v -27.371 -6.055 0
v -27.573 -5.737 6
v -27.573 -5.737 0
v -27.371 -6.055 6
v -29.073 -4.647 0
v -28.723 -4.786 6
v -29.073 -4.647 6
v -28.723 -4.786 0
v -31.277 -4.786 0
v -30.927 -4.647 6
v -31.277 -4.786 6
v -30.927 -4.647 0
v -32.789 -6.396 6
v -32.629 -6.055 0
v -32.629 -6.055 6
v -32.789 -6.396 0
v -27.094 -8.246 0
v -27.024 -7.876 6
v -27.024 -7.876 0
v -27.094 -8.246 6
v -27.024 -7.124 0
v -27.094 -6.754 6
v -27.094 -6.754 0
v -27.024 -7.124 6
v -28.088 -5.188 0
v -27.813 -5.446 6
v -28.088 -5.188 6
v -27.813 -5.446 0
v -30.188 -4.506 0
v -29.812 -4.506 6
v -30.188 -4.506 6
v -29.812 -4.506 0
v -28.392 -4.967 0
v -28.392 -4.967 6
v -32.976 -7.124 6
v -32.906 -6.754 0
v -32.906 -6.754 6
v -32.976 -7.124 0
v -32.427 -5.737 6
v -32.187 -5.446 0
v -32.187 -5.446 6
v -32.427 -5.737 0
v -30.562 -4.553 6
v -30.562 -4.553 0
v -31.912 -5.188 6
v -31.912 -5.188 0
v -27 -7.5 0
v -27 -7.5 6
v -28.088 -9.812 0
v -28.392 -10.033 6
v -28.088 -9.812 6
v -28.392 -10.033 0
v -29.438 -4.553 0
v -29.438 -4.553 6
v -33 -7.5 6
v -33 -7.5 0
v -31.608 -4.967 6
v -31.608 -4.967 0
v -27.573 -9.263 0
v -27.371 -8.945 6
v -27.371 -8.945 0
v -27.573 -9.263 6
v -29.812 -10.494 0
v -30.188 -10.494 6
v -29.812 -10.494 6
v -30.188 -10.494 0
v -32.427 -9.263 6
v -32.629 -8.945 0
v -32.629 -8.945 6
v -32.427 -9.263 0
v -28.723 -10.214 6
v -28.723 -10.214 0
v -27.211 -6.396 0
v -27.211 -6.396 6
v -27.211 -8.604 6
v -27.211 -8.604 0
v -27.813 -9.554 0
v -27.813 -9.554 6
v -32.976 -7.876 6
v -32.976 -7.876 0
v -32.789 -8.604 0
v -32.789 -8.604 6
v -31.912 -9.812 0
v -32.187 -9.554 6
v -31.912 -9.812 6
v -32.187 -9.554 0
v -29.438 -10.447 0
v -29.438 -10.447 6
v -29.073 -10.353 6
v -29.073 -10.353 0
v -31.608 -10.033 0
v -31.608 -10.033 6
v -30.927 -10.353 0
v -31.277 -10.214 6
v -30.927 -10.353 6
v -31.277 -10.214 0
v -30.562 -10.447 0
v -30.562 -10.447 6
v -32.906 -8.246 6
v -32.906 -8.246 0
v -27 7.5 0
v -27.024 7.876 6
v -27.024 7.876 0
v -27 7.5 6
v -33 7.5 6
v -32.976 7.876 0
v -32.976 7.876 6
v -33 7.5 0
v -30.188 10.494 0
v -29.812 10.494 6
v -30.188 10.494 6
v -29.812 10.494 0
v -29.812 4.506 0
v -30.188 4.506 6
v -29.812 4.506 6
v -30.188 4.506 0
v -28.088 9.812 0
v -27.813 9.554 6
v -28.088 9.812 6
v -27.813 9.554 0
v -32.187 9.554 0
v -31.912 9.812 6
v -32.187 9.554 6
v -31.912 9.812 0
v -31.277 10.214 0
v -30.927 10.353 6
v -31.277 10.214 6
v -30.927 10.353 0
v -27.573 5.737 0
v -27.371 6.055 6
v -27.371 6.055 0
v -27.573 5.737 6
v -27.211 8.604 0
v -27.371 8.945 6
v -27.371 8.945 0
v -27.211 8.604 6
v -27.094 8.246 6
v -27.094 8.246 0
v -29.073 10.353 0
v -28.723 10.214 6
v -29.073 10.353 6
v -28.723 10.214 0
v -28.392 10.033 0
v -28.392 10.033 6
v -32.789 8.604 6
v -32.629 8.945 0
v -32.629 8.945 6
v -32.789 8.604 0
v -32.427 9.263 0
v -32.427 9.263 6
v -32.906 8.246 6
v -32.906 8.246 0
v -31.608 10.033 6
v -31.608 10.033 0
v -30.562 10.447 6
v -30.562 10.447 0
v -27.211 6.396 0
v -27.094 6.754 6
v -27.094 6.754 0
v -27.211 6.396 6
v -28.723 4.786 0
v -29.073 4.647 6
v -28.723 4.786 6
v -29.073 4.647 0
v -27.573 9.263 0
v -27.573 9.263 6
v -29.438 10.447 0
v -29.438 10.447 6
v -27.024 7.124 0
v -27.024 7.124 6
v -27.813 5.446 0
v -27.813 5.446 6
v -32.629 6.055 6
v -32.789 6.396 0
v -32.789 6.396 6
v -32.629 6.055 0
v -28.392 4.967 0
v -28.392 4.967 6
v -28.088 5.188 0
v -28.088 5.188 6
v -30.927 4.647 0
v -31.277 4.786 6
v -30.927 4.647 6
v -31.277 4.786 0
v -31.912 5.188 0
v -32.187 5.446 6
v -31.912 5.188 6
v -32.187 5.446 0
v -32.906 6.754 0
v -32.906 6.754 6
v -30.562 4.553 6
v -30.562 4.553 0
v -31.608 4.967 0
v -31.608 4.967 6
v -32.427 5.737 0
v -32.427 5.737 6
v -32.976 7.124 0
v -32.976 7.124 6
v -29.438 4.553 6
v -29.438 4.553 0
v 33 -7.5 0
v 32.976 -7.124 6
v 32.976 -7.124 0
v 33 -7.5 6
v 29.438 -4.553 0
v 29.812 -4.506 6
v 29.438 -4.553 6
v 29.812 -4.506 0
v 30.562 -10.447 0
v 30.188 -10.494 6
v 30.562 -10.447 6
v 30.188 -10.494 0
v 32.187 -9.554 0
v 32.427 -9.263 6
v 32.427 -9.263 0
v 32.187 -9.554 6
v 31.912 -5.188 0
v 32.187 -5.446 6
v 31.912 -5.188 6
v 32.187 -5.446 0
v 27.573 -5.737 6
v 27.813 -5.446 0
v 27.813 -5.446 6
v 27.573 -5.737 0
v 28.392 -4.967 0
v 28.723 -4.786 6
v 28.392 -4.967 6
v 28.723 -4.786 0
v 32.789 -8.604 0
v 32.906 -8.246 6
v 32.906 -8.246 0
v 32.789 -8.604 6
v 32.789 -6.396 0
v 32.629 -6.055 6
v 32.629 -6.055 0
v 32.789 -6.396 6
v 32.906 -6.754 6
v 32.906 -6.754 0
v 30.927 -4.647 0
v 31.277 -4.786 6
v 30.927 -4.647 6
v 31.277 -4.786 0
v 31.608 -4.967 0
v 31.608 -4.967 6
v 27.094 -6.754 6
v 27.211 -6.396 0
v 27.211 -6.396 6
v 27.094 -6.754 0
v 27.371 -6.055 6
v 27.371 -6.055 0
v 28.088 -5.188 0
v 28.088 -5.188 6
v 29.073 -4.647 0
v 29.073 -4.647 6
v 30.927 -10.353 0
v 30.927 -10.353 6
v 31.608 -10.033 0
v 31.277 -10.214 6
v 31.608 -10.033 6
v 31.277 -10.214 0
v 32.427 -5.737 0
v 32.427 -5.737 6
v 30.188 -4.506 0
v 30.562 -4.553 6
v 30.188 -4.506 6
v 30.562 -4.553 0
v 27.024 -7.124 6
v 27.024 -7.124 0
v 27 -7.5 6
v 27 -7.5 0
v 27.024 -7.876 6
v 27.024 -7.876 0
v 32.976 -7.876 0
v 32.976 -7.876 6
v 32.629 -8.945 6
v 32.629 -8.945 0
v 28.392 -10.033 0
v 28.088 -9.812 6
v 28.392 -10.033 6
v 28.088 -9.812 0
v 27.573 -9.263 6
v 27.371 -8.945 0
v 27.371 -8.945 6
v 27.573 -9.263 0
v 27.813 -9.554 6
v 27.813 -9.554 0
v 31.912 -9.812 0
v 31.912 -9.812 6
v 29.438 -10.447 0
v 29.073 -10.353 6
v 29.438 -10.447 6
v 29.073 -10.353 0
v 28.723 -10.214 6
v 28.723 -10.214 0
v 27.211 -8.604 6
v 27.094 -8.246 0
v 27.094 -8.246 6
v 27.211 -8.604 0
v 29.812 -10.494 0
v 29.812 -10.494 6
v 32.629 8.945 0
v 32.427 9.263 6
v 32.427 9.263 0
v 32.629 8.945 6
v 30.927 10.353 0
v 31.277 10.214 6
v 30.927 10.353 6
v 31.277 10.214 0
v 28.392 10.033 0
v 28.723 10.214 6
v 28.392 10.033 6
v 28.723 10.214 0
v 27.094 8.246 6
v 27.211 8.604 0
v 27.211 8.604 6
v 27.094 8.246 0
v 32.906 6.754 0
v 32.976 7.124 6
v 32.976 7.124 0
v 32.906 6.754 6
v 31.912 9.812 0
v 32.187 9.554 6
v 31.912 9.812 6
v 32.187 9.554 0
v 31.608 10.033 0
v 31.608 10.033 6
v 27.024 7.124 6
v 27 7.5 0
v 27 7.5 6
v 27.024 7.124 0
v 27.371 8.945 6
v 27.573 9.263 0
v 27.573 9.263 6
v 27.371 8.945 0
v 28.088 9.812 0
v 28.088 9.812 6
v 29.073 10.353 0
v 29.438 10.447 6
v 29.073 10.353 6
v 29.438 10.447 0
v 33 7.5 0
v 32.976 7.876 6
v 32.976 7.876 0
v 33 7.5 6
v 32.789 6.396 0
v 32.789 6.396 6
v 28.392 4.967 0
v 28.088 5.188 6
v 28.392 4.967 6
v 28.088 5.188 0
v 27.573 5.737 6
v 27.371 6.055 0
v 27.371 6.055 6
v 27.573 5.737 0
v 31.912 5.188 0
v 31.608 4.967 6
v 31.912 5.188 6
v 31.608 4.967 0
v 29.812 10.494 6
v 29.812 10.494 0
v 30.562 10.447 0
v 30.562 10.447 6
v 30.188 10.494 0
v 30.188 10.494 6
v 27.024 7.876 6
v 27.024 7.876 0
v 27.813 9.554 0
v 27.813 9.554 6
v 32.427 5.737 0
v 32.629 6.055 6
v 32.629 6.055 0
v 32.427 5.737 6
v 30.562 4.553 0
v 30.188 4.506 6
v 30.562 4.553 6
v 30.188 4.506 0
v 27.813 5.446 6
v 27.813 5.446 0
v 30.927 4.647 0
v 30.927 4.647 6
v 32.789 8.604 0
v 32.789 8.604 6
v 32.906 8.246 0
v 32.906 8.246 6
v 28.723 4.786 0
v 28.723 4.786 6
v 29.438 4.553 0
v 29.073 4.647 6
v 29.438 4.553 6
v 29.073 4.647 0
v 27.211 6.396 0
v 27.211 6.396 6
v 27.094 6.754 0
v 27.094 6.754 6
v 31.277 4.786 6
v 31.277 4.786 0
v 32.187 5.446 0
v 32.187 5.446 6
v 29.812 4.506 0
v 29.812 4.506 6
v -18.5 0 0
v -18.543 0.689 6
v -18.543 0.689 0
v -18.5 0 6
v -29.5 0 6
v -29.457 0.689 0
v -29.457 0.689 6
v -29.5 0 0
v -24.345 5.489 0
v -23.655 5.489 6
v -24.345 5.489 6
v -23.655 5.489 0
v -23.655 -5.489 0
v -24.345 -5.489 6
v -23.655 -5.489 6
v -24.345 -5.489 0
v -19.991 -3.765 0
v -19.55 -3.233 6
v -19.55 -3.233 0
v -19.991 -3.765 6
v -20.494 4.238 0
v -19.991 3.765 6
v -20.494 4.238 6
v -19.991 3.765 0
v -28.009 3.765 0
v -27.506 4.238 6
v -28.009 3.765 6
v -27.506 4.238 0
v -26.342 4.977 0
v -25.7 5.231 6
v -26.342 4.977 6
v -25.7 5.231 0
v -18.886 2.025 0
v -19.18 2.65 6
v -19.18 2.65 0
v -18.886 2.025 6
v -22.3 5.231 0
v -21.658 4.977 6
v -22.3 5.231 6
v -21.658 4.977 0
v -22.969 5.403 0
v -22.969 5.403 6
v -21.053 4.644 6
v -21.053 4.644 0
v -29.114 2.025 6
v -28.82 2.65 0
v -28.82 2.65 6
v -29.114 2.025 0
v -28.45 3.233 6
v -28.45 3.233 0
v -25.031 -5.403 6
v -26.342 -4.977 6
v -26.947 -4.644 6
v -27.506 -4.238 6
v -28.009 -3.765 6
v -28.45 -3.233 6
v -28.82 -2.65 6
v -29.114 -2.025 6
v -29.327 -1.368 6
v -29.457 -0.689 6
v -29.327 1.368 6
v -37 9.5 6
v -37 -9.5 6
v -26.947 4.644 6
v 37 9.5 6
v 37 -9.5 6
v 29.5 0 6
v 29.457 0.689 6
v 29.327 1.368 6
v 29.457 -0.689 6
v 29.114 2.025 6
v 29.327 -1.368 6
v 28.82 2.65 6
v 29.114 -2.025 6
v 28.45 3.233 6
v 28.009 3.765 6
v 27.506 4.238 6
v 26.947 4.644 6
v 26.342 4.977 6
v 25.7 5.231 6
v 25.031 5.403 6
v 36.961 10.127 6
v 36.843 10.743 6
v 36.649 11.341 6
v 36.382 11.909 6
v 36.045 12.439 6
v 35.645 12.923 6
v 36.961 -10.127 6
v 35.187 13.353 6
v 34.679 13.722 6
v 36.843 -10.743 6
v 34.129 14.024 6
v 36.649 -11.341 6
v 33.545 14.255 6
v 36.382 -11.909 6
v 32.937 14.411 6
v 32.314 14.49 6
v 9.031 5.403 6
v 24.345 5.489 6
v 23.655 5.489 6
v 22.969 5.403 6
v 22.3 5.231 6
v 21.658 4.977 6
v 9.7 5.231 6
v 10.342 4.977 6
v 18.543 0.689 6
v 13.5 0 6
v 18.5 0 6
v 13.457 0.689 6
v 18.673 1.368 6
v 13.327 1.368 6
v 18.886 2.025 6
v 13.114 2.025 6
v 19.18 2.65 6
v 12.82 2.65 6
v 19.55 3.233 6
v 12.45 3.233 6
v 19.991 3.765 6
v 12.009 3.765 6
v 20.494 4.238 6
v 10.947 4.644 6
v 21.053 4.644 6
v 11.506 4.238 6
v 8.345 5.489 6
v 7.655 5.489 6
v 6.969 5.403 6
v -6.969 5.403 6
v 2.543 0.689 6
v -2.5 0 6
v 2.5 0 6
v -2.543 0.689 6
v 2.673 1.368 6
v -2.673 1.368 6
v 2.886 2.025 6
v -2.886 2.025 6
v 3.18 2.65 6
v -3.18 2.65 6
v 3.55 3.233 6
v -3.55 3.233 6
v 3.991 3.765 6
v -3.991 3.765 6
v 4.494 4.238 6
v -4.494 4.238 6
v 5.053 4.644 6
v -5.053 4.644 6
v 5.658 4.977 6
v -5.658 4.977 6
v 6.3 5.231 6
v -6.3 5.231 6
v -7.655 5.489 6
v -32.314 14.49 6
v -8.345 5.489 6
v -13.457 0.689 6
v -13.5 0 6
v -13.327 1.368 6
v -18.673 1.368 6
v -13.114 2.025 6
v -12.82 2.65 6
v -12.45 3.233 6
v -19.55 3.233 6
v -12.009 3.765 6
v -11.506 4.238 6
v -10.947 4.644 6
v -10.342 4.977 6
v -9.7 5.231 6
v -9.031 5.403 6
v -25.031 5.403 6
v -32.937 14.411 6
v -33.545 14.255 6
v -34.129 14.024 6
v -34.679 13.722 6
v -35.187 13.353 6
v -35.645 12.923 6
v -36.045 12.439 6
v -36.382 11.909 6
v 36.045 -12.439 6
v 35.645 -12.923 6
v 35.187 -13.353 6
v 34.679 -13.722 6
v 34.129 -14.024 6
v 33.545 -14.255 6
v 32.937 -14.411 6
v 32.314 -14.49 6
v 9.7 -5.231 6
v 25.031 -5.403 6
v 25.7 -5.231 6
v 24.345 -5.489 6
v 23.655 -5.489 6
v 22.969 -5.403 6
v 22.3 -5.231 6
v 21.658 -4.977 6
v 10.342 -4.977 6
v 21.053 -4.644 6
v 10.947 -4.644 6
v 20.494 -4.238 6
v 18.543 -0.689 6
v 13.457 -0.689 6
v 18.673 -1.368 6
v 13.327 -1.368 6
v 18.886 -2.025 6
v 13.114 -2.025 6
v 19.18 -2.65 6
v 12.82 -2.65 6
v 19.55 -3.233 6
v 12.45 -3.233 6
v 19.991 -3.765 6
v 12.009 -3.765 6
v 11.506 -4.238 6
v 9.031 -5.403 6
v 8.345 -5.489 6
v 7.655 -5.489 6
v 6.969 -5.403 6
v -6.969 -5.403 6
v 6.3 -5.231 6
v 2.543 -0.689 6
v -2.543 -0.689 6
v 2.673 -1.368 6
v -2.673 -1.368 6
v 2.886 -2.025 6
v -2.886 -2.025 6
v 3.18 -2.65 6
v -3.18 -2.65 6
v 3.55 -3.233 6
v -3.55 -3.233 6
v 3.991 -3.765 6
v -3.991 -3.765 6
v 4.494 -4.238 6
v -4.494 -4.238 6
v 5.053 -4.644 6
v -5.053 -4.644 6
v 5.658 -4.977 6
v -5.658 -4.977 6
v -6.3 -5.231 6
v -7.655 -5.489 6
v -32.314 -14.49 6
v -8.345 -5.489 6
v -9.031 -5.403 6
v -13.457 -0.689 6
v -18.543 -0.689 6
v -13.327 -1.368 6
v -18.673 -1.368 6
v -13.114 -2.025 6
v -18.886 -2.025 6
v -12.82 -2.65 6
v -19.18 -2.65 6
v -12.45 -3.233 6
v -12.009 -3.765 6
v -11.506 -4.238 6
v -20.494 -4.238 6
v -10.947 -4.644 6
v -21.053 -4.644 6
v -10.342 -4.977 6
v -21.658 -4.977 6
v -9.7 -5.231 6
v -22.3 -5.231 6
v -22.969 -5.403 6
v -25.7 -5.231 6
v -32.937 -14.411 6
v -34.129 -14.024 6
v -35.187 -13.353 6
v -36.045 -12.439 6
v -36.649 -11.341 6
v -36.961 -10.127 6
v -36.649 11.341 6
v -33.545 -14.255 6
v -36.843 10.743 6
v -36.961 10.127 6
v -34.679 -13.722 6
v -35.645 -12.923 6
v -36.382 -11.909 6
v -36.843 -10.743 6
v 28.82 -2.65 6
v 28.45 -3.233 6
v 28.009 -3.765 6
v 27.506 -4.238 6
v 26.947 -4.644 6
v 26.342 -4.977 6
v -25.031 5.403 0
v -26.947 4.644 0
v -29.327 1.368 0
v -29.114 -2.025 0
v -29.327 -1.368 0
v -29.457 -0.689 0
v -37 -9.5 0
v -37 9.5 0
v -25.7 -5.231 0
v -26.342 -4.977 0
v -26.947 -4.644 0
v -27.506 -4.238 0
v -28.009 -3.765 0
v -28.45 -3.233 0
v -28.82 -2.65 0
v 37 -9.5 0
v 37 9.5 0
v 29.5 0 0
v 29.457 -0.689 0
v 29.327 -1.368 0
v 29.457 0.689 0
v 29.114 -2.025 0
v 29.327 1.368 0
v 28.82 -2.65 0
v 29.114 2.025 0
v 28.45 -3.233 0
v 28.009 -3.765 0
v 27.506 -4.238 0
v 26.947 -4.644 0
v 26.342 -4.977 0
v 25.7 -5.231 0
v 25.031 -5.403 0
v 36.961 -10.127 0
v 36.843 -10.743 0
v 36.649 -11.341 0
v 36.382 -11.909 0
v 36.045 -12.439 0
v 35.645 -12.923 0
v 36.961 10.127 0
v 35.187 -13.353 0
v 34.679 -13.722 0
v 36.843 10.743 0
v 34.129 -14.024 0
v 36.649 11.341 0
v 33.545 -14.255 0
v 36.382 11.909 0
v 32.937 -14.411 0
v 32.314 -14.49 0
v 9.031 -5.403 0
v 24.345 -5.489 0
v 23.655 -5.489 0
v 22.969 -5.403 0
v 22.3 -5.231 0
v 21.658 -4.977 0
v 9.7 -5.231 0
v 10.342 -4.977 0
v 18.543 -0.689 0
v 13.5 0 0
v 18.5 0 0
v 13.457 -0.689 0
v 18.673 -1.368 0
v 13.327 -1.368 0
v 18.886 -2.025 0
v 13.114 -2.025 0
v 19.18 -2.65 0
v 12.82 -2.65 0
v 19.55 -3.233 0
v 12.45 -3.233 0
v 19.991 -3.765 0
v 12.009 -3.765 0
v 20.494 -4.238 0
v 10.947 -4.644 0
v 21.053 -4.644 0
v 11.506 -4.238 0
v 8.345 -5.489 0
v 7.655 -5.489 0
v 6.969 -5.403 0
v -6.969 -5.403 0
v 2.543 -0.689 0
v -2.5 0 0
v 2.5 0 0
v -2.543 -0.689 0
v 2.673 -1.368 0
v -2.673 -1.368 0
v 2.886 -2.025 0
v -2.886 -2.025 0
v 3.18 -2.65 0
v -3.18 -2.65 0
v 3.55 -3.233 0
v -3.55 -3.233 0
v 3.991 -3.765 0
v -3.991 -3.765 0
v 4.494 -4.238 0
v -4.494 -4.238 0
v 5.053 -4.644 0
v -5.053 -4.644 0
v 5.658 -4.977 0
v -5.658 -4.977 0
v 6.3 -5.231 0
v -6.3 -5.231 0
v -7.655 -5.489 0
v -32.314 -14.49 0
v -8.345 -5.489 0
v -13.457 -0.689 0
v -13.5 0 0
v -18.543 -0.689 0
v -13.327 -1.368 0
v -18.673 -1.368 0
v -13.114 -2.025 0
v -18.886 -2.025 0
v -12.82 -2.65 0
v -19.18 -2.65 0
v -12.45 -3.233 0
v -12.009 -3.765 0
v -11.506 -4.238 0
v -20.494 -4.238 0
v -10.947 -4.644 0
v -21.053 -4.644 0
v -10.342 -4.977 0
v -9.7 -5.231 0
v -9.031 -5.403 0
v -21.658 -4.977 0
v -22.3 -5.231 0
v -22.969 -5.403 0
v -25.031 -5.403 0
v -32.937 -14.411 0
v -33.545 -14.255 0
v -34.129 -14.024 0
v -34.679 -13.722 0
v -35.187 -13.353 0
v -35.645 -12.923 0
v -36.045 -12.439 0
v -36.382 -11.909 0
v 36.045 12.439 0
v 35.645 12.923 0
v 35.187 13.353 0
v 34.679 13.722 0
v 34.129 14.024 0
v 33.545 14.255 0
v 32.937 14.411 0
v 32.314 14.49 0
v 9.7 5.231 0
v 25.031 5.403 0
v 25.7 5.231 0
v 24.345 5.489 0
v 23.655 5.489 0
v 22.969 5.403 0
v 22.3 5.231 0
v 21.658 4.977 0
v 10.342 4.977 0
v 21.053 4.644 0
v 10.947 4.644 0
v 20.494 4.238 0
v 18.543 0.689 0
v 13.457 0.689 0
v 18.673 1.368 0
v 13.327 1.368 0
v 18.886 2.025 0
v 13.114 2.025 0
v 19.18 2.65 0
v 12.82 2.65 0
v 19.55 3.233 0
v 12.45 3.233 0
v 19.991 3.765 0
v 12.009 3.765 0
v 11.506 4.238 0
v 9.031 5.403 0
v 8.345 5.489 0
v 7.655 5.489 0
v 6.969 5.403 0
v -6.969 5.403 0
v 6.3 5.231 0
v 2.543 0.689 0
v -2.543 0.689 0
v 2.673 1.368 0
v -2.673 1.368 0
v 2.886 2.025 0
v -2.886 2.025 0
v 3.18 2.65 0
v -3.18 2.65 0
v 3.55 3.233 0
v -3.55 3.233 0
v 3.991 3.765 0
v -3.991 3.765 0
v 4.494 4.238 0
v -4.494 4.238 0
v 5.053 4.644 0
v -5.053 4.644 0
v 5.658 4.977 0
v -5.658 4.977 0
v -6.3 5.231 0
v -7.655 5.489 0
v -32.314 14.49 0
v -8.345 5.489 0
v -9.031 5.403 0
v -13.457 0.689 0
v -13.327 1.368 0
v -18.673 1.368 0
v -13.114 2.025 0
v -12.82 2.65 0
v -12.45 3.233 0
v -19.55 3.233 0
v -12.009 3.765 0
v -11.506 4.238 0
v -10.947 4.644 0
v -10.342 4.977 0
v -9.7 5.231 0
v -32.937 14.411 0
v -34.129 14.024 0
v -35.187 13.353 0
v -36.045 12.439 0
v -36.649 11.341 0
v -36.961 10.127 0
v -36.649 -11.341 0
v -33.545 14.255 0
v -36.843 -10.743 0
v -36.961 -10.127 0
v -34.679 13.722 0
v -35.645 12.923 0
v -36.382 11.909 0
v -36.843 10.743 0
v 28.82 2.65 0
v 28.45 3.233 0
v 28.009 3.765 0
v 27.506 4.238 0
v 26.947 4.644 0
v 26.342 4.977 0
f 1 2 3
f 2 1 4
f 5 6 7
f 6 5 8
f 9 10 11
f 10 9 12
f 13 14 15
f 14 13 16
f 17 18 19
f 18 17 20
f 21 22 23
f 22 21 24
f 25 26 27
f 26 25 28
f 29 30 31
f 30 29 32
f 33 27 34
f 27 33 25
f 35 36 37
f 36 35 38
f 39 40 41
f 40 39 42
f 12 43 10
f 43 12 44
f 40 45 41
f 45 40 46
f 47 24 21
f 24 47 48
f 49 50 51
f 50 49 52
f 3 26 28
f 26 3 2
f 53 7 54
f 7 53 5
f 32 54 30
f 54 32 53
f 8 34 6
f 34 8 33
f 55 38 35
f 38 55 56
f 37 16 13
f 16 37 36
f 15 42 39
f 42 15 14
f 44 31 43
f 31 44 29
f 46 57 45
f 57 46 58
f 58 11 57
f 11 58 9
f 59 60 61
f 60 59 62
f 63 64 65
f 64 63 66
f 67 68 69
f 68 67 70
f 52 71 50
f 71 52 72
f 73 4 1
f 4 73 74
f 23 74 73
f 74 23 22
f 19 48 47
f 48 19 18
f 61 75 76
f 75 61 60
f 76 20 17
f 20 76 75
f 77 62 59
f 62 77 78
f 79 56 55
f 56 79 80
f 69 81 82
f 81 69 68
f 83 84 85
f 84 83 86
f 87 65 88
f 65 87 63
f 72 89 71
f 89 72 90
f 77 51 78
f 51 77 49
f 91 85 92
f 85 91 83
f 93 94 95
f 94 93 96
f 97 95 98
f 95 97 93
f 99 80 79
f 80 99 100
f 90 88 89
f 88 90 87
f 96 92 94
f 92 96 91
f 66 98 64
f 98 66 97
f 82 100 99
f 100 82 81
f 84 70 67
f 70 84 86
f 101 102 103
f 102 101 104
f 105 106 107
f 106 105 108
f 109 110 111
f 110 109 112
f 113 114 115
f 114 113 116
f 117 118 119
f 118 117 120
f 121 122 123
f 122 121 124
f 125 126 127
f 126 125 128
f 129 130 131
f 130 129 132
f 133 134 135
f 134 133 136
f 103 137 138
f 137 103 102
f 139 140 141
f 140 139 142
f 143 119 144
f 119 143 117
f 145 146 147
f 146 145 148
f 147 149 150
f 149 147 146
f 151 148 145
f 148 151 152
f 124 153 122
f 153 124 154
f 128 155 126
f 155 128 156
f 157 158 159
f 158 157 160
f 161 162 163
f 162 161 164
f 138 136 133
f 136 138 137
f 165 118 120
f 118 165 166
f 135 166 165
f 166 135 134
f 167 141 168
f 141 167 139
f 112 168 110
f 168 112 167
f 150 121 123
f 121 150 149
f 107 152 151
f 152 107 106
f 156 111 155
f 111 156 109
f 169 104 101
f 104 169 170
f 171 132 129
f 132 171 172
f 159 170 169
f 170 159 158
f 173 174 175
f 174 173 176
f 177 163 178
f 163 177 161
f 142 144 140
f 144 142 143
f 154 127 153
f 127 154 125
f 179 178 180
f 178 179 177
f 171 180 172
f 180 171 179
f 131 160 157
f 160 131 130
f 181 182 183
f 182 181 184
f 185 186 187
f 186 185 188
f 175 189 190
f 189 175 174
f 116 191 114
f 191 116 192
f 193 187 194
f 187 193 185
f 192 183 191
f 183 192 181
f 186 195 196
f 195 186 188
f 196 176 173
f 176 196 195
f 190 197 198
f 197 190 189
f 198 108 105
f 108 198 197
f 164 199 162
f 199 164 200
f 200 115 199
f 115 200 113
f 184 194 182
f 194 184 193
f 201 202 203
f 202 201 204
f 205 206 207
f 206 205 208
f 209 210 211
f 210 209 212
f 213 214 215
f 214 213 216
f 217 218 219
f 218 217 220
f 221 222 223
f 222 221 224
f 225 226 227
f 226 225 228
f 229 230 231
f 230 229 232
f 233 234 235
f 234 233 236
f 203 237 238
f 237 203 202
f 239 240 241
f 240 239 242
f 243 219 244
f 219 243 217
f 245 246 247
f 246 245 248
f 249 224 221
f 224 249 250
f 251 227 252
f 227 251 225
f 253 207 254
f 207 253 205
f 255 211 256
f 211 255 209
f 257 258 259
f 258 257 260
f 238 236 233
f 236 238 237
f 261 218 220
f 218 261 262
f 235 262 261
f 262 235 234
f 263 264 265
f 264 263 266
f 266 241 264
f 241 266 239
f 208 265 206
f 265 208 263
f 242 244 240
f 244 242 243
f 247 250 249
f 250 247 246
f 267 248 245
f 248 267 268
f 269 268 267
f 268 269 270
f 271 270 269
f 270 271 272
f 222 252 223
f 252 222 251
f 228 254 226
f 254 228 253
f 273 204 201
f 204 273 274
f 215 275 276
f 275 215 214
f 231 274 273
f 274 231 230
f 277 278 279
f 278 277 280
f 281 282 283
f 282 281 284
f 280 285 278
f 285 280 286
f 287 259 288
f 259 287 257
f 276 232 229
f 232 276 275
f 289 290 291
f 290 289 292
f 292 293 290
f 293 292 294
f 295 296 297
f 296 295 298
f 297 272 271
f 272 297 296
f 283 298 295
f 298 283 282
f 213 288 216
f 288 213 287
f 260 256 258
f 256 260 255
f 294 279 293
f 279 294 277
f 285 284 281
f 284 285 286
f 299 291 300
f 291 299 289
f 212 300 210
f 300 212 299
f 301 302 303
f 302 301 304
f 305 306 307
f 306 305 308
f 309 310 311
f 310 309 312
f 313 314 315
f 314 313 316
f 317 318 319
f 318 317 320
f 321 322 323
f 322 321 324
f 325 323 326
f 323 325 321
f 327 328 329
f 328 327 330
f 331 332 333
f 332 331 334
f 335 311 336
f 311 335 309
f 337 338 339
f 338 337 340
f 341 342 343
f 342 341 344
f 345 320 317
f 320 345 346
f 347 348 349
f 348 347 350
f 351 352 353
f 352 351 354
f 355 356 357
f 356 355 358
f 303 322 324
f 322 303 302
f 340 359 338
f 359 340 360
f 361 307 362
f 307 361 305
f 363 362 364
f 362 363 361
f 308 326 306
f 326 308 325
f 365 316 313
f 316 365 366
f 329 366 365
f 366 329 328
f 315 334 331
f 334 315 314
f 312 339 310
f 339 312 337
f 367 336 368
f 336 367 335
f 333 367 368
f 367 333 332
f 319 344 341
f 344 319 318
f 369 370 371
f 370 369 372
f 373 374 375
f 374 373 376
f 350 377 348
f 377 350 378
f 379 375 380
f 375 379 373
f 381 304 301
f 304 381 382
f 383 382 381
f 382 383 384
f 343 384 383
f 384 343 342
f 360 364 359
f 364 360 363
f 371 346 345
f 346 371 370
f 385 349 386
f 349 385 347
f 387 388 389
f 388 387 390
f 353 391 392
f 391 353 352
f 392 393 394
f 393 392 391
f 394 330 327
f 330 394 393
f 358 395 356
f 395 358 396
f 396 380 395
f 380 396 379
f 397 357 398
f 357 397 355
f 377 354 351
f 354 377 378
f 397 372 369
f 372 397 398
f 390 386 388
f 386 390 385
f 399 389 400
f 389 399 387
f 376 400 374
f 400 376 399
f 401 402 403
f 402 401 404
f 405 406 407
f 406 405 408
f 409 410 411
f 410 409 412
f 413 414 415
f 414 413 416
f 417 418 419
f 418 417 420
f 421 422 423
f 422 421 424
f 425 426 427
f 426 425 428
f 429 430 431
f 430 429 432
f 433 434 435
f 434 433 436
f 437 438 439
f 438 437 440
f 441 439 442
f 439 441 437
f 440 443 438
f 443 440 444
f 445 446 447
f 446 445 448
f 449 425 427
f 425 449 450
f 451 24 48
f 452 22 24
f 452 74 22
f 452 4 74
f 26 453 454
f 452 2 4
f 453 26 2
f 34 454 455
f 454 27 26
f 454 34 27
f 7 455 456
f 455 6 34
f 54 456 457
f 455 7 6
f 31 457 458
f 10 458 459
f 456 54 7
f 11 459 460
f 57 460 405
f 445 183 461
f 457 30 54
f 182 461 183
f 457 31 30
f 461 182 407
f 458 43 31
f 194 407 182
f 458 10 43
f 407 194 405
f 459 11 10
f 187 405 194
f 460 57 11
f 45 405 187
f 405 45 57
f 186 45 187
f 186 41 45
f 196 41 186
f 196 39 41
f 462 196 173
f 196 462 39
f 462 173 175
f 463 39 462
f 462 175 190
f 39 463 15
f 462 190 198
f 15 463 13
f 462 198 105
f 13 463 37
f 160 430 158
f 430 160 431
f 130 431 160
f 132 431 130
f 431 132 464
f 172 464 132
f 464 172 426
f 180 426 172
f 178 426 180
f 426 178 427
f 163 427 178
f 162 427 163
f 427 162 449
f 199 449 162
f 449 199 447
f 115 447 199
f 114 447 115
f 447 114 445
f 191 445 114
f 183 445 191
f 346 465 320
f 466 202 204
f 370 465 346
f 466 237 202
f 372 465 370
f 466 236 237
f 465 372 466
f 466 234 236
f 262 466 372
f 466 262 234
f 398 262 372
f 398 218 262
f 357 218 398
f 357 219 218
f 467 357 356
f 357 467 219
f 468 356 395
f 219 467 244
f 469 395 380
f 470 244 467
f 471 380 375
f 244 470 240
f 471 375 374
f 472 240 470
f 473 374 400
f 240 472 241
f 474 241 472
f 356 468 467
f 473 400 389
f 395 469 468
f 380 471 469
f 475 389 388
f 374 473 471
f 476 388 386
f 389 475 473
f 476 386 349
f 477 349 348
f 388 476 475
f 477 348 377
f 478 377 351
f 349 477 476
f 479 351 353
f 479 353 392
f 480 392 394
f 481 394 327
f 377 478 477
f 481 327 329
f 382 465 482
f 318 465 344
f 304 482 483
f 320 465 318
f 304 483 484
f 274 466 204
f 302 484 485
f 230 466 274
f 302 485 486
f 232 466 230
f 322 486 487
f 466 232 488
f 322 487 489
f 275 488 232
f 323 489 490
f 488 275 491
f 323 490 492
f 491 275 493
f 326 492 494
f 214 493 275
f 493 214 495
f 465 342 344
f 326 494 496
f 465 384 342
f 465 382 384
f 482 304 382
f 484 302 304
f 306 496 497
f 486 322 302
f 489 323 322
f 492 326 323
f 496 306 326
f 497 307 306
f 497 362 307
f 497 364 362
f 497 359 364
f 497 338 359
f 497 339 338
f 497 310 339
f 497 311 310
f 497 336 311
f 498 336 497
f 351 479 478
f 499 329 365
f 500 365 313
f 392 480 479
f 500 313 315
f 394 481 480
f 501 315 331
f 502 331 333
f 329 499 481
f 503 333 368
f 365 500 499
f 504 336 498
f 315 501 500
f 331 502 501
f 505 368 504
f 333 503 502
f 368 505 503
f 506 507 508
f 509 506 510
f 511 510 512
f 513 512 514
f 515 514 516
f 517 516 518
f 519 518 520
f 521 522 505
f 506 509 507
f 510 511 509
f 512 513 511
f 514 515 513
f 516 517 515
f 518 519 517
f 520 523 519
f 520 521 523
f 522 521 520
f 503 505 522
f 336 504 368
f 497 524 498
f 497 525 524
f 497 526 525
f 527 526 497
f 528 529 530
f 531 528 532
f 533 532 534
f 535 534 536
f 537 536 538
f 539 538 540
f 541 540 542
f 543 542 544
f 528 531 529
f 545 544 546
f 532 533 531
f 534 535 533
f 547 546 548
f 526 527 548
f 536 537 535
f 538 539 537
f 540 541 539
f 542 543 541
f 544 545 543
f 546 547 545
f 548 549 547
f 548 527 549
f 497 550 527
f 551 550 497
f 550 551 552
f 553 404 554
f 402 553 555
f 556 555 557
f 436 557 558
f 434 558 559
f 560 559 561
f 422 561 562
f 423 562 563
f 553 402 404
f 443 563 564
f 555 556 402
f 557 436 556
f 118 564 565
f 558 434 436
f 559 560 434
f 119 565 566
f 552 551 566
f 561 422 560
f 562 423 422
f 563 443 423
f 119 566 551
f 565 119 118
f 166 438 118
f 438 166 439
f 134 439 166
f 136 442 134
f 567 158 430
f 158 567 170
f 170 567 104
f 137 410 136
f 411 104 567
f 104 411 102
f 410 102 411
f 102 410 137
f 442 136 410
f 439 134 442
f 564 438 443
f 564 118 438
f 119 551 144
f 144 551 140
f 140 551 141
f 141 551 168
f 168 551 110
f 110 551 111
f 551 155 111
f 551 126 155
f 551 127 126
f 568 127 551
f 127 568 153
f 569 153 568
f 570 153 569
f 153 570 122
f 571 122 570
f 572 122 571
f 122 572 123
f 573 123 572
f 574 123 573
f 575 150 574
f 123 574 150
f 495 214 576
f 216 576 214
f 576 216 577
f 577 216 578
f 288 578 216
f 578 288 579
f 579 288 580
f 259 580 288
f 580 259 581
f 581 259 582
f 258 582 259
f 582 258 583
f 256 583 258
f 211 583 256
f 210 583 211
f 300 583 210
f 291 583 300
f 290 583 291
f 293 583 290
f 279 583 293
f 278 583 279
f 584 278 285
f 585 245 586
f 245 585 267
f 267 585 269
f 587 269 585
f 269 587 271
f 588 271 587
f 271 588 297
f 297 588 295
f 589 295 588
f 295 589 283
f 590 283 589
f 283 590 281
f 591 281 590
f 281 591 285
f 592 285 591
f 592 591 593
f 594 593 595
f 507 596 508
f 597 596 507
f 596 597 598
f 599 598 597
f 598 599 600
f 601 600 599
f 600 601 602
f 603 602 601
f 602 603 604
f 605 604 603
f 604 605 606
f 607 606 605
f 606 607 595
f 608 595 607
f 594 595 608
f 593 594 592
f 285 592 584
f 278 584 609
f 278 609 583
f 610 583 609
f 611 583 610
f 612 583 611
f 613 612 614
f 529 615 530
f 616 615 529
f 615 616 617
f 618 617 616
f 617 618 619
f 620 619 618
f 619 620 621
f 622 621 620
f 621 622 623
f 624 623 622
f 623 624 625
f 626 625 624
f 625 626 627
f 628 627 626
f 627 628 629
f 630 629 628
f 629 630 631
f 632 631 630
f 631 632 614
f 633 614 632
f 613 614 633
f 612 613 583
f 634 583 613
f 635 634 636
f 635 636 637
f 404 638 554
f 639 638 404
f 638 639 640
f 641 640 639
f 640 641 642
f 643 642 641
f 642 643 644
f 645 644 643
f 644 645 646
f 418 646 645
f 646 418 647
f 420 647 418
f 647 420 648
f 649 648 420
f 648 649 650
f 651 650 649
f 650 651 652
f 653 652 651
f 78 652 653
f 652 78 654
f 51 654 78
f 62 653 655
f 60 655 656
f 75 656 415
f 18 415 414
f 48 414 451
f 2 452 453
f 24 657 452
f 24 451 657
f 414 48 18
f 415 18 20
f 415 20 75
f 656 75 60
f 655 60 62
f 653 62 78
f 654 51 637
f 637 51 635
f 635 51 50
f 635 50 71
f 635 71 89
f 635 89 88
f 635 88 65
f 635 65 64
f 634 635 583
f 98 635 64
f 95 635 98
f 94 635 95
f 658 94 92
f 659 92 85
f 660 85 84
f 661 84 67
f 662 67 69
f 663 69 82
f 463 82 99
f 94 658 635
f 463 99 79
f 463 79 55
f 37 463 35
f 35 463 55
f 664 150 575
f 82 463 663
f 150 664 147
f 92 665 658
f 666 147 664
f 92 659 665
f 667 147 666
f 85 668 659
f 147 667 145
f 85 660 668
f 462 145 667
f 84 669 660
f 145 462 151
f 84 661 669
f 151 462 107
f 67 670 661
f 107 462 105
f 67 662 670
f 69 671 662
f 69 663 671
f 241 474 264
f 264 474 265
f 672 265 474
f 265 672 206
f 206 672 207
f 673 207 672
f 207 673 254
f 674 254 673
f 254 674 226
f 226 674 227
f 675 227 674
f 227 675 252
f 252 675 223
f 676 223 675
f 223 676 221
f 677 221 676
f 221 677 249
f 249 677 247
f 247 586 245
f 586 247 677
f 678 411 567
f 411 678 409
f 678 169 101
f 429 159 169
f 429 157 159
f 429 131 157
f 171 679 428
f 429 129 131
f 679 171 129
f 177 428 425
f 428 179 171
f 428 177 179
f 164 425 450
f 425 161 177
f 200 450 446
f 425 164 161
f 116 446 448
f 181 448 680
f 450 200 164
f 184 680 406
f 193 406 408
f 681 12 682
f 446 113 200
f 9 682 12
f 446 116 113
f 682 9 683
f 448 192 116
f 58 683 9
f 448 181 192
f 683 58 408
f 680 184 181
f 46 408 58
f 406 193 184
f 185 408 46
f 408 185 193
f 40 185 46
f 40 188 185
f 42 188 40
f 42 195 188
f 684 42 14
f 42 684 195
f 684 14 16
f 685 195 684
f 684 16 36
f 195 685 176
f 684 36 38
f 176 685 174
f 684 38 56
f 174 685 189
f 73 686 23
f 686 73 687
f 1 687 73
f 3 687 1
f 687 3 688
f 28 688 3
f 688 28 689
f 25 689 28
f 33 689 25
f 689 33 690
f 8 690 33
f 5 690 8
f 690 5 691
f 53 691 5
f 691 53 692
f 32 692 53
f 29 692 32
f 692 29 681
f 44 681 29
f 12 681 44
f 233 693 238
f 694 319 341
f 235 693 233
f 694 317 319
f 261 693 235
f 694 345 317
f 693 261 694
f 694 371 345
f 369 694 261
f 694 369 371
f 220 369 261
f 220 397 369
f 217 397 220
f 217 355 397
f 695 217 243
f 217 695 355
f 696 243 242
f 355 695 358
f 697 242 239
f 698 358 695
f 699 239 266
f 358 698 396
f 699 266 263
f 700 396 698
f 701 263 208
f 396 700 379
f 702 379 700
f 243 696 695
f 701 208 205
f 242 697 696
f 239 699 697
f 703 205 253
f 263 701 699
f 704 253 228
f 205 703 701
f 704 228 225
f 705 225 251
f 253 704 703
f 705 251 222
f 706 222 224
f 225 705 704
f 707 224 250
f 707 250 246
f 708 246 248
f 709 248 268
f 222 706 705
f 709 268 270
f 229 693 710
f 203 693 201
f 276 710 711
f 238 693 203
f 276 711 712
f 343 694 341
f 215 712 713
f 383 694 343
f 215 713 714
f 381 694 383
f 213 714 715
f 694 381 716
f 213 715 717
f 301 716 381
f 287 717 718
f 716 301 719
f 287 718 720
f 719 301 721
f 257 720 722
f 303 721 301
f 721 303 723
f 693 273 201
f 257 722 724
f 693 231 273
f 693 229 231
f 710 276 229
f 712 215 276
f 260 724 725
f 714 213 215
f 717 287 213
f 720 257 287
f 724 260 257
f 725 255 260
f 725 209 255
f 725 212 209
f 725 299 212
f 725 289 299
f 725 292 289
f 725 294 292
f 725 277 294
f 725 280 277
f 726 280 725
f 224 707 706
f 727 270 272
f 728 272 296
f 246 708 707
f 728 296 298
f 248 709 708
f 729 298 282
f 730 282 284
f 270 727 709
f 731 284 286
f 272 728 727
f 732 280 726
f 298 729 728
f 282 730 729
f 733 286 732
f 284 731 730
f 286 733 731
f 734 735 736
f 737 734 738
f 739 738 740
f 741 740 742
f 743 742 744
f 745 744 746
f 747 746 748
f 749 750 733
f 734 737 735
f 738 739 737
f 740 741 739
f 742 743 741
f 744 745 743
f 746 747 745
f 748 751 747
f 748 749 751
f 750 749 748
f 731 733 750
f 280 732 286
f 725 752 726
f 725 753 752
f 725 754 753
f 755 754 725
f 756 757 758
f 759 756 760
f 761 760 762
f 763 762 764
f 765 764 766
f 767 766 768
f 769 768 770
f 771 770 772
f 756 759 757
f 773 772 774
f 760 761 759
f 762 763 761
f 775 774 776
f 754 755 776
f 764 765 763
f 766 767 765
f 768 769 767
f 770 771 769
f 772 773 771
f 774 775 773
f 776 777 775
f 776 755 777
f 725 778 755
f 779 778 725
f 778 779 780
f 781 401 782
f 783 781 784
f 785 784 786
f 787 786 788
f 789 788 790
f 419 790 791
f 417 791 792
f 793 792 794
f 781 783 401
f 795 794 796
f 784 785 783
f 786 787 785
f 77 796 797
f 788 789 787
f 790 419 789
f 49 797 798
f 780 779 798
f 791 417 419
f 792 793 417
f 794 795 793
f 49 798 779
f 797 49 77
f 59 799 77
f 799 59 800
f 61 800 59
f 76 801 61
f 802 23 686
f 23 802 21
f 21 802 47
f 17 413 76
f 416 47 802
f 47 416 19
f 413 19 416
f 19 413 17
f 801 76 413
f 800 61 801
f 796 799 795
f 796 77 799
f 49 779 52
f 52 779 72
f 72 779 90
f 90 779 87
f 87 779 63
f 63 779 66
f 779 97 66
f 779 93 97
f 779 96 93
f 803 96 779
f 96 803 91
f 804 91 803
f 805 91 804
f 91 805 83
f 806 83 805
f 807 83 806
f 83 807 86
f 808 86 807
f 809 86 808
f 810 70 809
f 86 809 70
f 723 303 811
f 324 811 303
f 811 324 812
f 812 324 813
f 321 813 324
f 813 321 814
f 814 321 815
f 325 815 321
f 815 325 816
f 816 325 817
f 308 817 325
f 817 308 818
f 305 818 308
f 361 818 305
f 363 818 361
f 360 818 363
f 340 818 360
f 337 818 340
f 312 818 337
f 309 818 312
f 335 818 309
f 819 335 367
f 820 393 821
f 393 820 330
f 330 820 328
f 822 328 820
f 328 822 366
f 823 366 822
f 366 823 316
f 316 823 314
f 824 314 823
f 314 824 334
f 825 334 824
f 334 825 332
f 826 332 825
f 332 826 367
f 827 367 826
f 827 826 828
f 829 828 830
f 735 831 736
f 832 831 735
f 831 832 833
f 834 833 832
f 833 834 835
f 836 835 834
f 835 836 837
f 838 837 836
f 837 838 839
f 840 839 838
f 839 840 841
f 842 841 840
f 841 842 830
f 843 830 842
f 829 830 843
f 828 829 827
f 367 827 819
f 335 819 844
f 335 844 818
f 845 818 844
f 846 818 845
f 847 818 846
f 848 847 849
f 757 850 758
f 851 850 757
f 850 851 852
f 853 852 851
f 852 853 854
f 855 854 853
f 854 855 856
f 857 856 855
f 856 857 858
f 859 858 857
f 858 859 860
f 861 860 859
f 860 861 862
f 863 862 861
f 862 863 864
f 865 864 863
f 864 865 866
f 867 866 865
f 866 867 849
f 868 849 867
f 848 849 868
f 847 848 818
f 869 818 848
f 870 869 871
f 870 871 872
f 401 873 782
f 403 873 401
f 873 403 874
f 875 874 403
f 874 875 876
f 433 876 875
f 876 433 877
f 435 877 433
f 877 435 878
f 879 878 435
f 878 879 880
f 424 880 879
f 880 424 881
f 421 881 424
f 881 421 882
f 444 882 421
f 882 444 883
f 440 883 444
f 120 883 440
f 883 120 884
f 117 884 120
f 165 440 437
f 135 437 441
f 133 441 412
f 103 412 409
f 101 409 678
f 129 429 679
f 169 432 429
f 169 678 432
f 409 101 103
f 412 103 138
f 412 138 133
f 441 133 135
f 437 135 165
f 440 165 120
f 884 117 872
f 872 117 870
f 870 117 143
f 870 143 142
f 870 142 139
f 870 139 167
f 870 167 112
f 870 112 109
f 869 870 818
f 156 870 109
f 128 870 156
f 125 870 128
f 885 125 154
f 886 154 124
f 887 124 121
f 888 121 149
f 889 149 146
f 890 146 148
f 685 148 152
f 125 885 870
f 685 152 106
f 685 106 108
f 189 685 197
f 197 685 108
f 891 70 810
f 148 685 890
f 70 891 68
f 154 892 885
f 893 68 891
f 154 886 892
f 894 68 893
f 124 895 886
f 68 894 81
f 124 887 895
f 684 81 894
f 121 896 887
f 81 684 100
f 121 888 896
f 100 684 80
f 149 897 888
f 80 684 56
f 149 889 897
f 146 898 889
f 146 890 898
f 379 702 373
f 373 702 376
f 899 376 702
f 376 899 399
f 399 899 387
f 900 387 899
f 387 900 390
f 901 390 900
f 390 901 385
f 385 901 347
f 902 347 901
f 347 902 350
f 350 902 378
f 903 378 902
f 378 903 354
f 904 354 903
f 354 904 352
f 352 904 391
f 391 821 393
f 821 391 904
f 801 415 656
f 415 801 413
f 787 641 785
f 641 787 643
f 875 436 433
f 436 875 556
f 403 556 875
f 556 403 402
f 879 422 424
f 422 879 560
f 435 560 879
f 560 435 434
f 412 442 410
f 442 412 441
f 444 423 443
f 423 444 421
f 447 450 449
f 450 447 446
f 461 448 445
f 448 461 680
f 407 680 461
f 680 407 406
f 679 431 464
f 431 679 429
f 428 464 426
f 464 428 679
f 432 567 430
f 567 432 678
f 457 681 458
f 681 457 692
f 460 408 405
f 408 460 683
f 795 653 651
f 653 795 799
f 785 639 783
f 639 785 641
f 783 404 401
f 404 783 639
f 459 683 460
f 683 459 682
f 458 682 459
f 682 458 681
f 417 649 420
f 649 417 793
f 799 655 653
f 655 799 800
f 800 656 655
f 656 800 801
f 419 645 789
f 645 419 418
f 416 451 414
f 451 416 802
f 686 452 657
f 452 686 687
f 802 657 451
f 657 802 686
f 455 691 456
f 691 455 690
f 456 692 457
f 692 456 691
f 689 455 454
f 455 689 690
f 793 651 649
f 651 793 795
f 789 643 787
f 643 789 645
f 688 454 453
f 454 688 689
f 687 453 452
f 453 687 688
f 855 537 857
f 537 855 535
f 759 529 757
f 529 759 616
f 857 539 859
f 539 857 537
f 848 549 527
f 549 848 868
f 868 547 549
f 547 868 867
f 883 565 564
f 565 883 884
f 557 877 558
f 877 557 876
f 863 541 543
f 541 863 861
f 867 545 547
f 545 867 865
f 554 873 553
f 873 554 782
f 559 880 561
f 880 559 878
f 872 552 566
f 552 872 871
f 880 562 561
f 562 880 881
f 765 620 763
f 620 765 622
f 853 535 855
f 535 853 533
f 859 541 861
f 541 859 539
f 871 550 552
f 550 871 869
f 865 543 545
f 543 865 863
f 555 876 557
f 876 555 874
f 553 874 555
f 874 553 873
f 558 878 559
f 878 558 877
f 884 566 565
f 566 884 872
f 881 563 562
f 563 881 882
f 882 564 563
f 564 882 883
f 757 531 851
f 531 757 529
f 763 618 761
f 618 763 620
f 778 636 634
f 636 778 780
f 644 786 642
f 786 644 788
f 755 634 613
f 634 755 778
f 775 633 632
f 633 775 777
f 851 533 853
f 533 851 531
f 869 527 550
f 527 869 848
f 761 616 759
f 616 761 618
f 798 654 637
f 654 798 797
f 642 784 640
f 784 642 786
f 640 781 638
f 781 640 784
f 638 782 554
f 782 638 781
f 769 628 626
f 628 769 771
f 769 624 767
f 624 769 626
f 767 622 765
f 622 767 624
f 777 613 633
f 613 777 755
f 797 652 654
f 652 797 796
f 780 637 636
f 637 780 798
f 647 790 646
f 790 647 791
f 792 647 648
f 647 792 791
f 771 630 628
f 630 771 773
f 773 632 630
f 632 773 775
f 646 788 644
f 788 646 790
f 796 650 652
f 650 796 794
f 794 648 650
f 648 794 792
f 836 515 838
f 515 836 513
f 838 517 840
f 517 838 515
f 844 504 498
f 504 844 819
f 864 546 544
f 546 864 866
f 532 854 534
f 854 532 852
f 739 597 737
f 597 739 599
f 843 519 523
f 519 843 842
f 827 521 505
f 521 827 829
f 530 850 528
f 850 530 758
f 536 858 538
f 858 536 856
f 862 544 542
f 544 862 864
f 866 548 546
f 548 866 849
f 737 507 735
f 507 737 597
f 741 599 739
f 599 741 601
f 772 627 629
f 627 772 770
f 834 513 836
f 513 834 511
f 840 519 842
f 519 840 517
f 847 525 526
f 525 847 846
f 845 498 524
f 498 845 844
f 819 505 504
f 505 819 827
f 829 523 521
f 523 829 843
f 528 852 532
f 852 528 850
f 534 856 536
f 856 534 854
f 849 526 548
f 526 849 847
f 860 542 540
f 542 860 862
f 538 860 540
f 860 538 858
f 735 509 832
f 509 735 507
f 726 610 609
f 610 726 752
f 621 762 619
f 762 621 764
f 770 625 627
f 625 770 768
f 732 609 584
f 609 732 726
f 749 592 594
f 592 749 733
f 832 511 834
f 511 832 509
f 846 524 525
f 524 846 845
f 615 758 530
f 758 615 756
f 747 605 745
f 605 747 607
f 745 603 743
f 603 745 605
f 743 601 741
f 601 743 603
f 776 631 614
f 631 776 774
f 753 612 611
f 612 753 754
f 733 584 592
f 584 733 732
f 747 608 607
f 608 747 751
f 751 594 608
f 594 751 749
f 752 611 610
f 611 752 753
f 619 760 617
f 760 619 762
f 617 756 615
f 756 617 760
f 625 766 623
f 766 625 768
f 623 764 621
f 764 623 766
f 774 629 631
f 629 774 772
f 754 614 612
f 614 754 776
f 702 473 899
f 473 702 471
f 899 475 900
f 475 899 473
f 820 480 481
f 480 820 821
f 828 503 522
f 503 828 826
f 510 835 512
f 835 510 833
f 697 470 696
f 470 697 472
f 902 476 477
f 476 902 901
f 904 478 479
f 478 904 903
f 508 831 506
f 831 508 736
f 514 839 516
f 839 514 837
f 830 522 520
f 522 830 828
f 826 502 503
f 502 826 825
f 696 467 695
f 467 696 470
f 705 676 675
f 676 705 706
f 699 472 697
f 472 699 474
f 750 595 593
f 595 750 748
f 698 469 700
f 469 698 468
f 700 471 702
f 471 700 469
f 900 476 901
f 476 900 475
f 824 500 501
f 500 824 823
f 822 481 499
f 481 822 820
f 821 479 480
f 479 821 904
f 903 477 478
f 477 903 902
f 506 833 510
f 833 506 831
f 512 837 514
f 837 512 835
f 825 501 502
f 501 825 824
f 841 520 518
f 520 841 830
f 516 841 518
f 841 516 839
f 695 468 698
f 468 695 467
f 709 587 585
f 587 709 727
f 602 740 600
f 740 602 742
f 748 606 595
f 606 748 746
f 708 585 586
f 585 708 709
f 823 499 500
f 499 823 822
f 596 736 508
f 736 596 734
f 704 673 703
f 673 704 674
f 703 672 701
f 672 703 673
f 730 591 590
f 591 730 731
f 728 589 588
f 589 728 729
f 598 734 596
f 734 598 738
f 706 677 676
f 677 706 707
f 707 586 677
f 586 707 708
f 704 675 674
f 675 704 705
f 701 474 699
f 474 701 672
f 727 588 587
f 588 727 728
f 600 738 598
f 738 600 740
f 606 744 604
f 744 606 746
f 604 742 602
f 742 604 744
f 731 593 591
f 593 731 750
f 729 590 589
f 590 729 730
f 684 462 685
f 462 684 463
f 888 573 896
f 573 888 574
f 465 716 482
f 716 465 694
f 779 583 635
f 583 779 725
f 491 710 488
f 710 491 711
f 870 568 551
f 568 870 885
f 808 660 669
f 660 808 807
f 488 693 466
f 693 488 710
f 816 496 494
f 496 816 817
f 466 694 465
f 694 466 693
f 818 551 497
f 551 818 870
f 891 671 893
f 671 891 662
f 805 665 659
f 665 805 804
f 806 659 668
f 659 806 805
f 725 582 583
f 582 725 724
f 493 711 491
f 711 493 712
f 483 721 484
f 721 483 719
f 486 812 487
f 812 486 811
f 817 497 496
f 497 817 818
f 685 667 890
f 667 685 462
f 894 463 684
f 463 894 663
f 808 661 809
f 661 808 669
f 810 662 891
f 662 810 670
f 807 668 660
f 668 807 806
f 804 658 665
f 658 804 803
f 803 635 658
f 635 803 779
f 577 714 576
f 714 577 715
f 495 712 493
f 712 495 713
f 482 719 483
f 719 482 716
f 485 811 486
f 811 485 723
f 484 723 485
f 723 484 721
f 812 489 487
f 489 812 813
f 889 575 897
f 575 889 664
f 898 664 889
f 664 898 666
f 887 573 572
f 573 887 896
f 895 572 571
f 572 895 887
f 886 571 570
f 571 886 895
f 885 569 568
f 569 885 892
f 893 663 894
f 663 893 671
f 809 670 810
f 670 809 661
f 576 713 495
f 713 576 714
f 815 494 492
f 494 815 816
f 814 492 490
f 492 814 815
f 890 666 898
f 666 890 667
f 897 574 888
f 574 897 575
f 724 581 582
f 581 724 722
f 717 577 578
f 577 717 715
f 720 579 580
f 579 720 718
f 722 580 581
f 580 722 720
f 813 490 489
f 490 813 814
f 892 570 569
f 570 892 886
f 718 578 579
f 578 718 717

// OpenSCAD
$fn = 50;


difference() {
	union() {
		hull() {
			translate(v = [-32.0000000000, 9.5000000000, 0]) {
				cylinder(h = 6, r = 5);
			}
			translate(v = [32.0000000000, 9.5000000000, 0]) {
				cylinder(h = 6, r = 5);
			}
			translate(v = [-32.0000000000, -9.5000000000, 0]) {
				cylinder(h = 6, r = 5);
			}
			translate(v = [32.0000000000, -9.5000000000, 0]) {
				cylinder(h = 6, r = 5);
			}
		}
	}
	union() {
		#translate(v = [-30.0000000000, -7.5000000000, -100.0000000000]) {
			cylinder(h = 200, r = 3.0000000000);
		}
		#translate(v = [-30.0000000000, 7.5000000000, -100.0000000000]) {
			cylinder(h = 200, r = 3.0000000000);
		}
		#translate(v = [30.0000000000, -7.5000000000, -100.0000000000]) {
			cylinder(h = 200, r = 3.0000000000);
		}
		#translate(v = [30.0000000000, 7.5000000000, -100.0000000000]) {
			cylinder(h = 200, r = 3.0000000000);
		}
		#translate(v = [-24.0000000000, 0, 0]) {
			cylinder(h = 6, r = 5.5000000000);
		}
		#translate(v = [-8.0000000000, 0, 0]) {
			cylinder(h = 6, r = 5.5000000000);
		}
		#translate(v = [8.0000000000, 0, 0]) {
			cylinder(h = 6, r = 5.5000000000);
		}
		#translate(v = [24.0000000000, 0, 0]) {
			cylinder(h = 6, r = 5.5000000000);
		}
	}
}
